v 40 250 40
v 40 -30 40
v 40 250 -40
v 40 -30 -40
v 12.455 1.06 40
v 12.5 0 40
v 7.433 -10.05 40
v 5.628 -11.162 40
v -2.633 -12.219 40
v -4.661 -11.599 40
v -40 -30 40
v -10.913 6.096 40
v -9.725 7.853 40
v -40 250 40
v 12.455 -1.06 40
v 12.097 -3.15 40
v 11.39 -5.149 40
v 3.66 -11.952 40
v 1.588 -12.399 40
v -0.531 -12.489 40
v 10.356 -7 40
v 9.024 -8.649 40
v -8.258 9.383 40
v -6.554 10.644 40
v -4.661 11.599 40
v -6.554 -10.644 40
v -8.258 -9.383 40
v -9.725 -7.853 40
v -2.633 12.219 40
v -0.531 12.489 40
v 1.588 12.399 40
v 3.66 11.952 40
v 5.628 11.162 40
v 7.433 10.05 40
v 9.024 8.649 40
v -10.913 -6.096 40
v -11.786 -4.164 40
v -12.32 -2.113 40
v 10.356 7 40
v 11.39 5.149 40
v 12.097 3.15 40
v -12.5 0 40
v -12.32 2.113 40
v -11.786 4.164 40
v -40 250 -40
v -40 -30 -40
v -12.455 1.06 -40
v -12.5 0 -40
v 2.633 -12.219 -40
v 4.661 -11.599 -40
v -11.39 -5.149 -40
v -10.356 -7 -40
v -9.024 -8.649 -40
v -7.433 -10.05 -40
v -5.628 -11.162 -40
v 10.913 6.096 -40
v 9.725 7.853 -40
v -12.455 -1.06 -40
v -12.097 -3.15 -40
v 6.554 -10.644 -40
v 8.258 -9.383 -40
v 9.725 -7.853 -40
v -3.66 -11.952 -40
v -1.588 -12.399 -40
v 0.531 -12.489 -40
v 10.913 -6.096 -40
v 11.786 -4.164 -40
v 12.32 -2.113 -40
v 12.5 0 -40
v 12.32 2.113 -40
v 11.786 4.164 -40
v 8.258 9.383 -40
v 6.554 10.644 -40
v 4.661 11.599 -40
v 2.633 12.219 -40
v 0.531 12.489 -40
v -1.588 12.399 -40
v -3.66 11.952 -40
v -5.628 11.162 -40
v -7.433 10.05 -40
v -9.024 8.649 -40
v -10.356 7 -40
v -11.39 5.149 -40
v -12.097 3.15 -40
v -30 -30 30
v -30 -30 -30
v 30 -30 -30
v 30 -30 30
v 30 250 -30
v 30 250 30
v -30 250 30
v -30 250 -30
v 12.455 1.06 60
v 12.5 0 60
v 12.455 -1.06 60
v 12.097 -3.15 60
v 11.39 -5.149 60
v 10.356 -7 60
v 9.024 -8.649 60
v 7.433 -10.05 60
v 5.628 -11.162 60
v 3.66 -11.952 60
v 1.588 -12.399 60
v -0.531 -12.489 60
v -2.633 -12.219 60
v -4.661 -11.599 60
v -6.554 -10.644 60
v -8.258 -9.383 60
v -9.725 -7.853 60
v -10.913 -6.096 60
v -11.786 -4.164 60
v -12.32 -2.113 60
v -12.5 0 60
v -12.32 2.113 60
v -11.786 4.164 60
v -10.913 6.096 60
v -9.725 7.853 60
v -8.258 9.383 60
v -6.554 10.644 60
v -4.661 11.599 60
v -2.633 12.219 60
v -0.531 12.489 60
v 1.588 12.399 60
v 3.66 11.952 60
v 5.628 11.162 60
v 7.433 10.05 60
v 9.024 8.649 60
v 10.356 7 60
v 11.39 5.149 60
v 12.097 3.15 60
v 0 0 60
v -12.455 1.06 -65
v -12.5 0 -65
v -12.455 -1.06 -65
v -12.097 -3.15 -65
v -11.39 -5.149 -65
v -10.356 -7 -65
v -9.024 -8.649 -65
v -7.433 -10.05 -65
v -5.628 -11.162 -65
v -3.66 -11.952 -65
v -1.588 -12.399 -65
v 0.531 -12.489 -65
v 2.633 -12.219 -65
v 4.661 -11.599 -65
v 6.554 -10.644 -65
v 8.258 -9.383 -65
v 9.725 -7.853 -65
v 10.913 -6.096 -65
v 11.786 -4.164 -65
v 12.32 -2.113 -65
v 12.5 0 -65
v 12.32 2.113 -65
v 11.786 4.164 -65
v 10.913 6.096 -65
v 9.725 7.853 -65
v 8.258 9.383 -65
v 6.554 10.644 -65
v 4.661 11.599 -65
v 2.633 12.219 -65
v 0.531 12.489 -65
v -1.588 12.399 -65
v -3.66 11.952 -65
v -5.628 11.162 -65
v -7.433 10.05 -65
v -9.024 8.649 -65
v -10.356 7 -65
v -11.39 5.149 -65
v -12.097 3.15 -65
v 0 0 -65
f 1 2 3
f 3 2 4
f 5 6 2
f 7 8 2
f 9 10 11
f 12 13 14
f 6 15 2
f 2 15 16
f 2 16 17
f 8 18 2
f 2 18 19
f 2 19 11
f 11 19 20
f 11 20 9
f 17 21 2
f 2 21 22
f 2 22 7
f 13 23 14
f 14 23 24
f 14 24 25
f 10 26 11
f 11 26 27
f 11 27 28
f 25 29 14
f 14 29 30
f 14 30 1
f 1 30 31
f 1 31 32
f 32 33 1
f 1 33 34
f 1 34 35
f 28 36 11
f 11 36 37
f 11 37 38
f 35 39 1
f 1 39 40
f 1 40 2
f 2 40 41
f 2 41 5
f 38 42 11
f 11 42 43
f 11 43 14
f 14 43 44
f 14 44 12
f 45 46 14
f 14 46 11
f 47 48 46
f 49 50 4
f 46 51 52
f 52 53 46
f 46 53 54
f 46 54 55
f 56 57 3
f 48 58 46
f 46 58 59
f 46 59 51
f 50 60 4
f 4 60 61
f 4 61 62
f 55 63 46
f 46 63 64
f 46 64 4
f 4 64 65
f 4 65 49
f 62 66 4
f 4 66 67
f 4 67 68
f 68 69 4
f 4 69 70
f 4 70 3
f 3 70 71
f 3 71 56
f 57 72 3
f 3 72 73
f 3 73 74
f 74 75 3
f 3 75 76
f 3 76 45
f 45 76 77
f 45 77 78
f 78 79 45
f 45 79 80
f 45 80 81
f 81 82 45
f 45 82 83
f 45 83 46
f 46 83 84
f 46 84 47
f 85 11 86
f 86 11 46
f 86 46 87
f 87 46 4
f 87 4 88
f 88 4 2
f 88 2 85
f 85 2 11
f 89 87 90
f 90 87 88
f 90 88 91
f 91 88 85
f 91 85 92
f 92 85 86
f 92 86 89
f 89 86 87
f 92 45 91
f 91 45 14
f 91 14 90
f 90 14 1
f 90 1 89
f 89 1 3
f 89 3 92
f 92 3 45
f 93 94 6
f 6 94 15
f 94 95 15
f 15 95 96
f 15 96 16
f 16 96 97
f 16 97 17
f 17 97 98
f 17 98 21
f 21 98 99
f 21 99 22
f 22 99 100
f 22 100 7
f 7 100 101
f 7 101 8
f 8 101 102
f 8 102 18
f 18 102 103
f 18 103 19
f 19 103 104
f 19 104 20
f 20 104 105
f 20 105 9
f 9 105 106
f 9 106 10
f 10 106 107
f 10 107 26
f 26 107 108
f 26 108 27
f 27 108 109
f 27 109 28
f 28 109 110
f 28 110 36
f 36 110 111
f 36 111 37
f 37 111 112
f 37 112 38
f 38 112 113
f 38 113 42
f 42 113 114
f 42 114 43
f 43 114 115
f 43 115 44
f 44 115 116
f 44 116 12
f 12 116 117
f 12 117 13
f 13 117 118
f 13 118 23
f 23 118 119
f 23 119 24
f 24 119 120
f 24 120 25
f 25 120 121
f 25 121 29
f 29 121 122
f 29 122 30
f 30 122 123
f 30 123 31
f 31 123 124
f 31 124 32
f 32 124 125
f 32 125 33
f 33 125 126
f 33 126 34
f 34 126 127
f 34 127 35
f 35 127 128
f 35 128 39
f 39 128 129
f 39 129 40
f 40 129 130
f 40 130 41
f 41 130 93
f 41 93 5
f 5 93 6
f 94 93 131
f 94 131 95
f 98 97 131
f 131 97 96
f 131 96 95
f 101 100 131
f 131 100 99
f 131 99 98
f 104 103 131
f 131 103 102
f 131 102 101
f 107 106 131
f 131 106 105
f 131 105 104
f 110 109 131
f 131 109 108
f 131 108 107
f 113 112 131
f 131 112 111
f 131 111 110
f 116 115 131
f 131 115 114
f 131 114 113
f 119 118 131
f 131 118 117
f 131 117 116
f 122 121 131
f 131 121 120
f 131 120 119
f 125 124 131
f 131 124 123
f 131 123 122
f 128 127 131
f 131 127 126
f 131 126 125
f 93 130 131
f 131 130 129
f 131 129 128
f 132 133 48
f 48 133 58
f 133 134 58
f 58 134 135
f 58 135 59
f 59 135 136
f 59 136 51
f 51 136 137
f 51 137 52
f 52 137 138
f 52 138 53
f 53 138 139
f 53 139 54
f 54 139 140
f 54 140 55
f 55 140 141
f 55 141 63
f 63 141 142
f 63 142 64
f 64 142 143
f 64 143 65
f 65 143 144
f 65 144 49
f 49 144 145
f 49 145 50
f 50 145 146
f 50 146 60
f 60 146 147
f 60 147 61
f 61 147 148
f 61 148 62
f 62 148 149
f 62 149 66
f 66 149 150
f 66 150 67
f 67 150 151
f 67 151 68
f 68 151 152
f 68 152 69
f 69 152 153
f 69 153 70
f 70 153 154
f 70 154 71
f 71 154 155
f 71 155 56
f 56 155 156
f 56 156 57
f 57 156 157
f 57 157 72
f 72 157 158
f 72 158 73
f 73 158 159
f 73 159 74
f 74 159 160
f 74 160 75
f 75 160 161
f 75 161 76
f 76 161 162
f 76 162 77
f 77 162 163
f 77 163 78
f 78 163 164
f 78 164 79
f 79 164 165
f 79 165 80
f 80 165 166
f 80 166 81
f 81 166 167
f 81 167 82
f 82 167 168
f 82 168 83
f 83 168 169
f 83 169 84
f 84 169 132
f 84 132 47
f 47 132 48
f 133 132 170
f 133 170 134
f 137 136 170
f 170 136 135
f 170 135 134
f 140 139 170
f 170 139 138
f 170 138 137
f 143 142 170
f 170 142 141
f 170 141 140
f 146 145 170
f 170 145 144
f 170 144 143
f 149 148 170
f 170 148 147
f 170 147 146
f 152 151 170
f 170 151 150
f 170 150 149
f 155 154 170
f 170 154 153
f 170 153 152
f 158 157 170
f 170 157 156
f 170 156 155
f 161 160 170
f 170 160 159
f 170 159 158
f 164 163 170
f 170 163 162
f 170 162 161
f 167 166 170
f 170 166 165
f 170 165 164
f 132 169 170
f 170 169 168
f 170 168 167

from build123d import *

# Parameters (mm, degrees)
BOSS_EXTRUDE1_DEPTH      = 250
BOSS_EXTRUDE1_DEPTH_BACK = 30
SKETCH1_W                = 80
SKETCH1_H                = 80
SKETCH1_W_2              = 60
SKETCH1_H_2              = 60
SKETCH2_R                = 12.5
BOSS_EXTRUDE2_DEPTH      = 20
BOSS_EXTRUDE3_START      = 25
SKETCH3_R                = 12.5
BOSS_EXTRUDE3_DEPTH      = 25


with BuildPart() as part:
    # Sketch1 → Boss-Extrude1 (new, two sides: drawn at the far end of the back side and taken through both)
    with BuildSketch(Plane(origin=(0, 0, 0), x_dir=(1, 0, 0), z_dir=(0, 1, 0)).offset(-BOSS_EXTRUDE1_DEPTH_BACK)):
        Rectangle(SKETCH1_W, SKETCH1_H)
        Rectangle(SKETCH1_W_2, SKETCH1_H_2, mode=Mode.SUBTRACT)
    extrude(amount=BOSS_EXTRUDE1_DEPTH + BOSS_EXTRUDE1_DEPTH_BACK)

    # Sketch2 → Boss-Extrude2 (add)
    with BuildSketch(Plane.XY.offset(40)):
        Circle(SKETCH2_R)
    extrude(amount=BOSS_EXTRUDE2_DEPTH)

    # Sketch3 → Boss-Extrude3 (add)
    with BuildSketch(Plane(origin=(0, 0, -40), x_dir=(-1, 0, 0), z_dir=(0, 0, -1)).offset(BOSS_EXTRUDE3_START)):
        with Locations(Location((0, 0, 0), (0, 0, 180))):
            Circle(SKETCH3_R)
    extrude(amount=-BOSS_EXTRUDE3_DEPTH)


solid = part.part
